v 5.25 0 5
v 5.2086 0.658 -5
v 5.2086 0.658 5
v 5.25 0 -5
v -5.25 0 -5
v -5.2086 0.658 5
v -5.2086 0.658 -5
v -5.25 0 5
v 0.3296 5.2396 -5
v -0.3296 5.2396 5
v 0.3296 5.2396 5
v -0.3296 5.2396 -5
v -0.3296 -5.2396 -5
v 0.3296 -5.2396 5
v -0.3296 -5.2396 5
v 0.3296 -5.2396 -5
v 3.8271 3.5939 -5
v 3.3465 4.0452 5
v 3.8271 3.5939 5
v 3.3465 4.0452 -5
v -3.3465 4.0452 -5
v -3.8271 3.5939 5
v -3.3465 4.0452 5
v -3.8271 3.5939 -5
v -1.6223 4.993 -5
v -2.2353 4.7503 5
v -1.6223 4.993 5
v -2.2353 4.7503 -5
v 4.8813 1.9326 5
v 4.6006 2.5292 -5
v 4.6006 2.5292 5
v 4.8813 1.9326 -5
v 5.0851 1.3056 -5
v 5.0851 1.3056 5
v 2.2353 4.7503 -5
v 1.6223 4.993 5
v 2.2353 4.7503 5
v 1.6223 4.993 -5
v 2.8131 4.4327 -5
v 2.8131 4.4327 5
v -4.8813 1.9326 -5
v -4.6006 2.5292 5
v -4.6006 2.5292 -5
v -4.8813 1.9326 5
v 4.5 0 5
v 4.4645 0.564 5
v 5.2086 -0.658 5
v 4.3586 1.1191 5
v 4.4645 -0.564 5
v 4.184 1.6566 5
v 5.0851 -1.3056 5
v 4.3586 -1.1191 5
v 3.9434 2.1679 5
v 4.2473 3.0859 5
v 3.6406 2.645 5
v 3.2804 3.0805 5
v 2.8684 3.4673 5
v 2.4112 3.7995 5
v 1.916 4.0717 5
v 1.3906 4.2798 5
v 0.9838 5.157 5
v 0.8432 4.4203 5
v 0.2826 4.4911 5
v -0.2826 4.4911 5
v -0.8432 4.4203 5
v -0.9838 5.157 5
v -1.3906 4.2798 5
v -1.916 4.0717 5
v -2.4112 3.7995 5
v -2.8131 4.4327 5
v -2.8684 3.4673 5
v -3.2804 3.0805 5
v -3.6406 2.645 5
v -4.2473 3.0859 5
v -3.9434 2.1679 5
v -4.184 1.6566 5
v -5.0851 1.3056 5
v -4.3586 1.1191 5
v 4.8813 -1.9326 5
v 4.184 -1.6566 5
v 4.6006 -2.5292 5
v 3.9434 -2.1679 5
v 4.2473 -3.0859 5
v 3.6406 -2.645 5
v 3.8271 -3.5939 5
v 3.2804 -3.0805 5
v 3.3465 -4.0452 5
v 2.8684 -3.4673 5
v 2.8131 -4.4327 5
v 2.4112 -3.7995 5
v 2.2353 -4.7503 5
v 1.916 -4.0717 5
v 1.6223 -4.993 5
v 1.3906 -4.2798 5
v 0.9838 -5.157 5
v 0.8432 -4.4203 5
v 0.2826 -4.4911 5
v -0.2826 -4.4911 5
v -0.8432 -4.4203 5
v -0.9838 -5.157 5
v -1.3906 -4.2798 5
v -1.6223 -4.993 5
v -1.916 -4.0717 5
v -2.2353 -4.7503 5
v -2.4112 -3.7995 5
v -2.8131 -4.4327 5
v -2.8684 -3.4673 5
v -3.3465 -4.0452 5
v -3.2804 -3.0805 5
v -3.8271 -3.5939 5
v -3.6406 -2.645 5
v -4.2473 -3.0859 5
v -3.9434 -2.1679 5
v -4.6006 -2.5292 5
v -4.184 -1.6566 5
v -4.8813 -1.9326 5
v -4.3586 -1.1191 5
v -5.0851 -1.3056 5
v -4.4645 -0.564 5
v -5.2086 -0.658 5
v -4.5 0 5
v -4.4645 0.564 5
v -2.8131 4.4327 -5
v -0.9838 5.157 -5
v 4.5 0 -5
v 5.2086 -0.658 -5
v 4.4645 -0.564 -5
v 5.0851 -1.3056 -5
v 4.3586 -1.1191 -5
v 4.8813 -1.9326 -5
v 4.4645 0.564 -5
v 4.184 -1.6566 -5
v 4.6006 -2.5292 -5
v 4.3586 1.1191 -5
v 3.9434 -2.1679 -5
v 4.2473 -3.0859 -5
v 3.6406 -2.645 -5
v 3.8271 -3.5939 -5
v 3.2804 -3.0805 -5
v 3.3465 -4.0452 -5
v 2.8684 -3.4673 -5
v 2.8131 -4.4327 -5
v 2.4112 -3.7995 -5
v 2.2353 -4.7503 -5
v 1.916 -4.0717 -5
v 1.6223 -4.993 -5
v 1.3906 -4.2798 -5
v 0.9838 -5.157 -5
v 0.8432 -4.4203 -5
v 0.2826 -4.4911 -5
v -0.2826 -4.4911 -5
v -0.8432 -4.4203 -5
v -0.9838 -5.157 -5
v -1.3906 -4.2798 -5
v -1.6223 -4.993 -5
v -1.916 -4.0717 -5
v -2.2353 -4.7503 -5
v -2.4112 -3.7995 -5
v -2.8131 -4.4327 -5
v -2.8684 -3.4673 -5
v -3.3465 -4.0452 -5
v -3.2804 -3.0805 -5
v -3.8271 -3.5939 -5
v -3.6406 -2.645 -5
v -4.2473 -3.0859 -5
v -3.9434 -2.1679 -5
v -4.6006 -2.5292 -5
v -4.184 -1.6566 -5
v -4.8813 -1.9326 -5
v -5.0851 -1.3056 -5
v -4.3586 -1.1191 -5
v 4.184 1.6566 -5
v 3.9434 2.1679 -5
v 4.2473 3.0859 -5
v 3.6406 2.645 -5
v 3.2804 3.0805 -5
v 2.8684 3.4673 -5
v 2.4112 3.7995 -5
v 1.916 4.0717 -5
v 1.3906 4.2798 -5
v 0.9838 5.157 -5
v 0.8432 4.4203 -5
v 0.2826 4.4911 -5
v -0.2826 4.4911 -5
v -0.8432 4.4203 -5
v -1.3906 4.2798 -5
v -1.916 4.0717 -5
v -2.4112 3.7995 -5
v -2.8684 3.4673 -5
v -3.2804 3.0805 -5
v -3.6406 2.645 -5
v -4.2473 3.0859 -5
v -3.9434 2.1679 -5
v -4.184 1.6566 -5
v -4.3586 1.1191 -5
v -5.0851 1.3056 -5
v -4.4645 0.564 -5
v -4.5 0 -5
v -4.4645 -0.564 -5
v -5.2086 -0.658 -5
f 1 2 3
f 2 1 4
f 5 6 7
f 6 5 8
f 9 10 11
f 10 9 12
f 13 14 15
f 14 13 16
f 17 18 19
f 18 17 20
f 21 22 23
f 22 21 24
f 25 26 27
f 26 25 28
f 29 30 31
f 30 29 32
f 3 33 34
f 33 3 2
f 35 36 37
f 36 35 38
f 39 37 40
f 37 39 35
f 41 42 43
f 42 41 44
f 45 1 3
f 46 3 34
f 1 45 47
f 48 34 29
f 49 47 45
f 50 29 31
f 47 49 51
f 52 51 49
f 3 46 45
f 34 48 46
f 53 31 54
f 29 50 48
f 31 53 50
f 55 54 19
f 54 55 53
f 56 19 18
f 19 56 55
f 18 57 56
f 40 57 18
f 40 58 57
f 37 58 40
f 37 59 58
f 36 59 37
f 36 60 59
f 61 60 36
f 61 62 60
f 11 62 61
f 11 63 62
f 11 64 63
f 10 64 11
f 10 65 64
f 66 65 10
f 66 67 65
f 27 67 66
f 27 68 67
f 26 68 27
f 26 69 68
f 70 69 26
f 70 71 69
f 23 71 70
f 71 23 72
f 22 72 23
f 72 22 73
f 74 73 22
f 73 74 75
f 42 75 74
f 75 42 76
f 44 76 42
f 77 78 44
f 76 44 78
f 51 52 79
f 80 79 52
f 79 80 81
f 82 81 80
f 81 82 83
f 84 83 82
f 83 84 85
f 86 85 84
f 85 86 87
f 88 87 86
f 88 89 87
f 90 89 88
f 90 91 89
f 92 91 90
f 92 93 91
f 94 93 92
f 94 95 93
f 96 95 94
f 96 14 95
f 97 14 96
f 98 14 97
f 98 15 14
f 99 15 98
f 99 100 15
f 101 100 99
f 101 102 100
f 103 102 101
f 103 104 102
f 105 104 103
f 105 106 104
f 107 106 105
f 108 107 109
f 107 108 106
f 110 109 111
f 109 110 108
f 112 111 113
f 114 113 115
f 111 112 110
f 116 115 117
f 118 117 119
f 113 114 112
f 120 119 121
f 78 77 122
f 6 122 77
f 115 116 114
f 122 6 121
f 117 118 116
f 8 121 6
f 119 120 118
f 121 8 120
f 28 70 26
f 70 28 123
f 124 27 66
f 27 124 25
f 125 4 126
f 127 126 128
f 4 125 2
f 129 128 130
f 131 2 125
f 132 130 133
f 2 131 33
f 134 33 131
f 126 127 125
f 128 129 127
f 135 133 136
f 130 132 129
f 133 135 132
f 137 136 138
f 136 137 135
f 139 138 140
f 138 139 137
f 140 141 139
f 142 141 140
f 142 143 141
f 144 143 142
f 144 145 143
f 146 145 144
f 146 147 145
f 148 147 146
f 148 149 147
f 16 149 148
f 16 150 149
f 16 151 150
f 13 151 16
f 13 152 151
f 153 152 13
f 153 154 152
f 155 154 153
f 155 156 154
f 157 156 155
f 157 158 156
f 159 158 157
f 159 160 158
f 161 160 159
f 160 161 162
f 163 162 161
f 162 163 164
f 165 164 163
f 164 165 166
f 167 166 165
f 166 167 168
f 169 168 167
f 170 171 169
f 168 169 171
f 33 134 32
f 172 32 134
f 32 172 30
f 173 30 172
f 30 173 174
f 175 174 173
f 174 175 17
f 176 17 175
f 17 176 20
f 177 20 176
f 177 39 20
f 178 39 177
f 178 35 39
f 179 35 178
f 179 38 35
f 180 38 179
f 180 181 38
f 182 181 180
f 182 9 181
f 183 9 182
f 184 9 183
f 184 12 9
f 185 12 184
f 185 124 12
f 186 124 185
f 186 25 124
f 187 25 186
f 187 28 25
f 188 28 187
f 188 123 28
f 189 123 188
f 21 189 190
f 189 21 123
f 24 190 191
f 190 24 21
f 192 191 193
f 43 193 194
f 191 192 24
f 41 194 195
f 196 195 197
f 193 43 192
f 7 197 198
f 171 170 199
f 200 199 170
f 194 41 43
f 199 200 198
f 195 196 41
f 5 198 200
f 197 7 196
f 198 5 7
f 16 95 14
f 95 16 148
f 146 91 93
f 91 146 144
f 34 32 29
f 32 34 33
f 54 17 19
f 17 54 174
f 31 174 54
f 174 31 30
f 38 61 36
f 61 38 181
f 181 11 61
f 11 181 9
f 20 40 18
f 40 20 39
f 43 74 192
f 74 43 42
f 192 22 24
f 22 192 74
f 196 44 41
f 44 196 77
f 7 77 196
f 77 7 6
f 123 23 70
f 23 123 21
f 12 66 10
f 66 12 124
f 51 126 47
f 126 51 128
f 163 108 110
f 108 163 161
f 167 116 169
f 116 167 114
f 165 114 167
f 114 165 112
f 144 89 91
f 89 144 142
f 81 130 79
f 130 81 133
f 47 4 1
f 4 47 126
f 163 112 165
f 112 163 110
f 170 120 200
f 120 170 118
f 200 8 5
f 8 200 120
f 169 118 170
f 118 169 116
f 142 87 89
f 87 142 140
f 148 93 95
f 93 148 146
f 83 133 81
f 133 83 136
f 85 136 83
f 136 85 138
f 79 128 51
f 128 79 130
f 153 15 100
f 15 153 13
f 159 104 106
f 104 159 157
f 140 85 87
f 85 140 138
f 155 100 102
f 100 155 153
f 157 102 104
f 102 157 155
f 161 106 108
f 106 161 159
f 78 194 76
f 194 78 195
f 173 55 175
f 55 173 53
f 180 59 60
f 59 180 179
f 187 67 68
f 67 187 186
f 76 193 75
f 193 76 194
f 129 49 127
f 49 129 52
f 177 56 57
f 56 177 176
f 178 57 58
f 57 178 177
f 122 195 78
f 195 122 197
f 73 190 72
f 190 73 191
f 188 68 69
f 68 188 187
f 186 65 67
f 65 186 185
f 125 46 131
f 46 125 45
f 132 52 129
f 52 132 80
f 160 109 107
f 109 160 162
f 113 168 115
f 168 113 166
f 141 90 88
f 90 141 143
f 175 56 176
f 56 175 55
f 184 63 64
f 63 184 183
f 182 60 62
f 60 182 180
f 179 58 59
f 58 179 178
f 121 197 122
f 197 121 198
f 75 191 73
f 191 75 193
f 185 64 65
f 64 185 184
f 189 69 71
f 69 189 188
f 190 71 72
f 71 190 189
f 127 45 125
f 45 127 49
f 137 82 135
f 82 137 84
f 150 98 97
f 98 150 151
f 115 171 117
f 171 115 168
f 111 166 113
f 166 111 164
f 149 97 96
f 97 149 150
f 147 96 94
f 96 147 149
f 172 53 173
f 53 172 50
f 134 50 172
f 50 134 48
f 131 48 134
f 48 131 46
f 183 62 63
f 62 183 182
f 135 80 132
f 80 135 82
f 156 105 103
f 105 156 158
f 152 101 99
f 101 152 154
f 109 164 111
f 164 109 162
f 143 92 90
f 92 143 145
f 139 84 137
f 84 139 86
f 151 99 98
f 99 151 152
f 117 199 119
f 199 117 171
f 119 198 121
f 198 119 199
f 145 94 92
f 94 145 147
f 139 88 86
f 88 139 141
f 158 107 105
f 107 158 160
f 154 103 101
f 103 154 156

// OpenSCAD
$fn = 50;


difference() {
	union() {
		translate(v = [0, 0, -5.0000000000]) {
			cylinder(h = 10, r = 5.2500000000);
		}
	}
	union() {
		translate(v = [0, 0, -100.0000000000]) {
			cylinder(h = 200, r = 4.5000000000);
		}
	}
}
